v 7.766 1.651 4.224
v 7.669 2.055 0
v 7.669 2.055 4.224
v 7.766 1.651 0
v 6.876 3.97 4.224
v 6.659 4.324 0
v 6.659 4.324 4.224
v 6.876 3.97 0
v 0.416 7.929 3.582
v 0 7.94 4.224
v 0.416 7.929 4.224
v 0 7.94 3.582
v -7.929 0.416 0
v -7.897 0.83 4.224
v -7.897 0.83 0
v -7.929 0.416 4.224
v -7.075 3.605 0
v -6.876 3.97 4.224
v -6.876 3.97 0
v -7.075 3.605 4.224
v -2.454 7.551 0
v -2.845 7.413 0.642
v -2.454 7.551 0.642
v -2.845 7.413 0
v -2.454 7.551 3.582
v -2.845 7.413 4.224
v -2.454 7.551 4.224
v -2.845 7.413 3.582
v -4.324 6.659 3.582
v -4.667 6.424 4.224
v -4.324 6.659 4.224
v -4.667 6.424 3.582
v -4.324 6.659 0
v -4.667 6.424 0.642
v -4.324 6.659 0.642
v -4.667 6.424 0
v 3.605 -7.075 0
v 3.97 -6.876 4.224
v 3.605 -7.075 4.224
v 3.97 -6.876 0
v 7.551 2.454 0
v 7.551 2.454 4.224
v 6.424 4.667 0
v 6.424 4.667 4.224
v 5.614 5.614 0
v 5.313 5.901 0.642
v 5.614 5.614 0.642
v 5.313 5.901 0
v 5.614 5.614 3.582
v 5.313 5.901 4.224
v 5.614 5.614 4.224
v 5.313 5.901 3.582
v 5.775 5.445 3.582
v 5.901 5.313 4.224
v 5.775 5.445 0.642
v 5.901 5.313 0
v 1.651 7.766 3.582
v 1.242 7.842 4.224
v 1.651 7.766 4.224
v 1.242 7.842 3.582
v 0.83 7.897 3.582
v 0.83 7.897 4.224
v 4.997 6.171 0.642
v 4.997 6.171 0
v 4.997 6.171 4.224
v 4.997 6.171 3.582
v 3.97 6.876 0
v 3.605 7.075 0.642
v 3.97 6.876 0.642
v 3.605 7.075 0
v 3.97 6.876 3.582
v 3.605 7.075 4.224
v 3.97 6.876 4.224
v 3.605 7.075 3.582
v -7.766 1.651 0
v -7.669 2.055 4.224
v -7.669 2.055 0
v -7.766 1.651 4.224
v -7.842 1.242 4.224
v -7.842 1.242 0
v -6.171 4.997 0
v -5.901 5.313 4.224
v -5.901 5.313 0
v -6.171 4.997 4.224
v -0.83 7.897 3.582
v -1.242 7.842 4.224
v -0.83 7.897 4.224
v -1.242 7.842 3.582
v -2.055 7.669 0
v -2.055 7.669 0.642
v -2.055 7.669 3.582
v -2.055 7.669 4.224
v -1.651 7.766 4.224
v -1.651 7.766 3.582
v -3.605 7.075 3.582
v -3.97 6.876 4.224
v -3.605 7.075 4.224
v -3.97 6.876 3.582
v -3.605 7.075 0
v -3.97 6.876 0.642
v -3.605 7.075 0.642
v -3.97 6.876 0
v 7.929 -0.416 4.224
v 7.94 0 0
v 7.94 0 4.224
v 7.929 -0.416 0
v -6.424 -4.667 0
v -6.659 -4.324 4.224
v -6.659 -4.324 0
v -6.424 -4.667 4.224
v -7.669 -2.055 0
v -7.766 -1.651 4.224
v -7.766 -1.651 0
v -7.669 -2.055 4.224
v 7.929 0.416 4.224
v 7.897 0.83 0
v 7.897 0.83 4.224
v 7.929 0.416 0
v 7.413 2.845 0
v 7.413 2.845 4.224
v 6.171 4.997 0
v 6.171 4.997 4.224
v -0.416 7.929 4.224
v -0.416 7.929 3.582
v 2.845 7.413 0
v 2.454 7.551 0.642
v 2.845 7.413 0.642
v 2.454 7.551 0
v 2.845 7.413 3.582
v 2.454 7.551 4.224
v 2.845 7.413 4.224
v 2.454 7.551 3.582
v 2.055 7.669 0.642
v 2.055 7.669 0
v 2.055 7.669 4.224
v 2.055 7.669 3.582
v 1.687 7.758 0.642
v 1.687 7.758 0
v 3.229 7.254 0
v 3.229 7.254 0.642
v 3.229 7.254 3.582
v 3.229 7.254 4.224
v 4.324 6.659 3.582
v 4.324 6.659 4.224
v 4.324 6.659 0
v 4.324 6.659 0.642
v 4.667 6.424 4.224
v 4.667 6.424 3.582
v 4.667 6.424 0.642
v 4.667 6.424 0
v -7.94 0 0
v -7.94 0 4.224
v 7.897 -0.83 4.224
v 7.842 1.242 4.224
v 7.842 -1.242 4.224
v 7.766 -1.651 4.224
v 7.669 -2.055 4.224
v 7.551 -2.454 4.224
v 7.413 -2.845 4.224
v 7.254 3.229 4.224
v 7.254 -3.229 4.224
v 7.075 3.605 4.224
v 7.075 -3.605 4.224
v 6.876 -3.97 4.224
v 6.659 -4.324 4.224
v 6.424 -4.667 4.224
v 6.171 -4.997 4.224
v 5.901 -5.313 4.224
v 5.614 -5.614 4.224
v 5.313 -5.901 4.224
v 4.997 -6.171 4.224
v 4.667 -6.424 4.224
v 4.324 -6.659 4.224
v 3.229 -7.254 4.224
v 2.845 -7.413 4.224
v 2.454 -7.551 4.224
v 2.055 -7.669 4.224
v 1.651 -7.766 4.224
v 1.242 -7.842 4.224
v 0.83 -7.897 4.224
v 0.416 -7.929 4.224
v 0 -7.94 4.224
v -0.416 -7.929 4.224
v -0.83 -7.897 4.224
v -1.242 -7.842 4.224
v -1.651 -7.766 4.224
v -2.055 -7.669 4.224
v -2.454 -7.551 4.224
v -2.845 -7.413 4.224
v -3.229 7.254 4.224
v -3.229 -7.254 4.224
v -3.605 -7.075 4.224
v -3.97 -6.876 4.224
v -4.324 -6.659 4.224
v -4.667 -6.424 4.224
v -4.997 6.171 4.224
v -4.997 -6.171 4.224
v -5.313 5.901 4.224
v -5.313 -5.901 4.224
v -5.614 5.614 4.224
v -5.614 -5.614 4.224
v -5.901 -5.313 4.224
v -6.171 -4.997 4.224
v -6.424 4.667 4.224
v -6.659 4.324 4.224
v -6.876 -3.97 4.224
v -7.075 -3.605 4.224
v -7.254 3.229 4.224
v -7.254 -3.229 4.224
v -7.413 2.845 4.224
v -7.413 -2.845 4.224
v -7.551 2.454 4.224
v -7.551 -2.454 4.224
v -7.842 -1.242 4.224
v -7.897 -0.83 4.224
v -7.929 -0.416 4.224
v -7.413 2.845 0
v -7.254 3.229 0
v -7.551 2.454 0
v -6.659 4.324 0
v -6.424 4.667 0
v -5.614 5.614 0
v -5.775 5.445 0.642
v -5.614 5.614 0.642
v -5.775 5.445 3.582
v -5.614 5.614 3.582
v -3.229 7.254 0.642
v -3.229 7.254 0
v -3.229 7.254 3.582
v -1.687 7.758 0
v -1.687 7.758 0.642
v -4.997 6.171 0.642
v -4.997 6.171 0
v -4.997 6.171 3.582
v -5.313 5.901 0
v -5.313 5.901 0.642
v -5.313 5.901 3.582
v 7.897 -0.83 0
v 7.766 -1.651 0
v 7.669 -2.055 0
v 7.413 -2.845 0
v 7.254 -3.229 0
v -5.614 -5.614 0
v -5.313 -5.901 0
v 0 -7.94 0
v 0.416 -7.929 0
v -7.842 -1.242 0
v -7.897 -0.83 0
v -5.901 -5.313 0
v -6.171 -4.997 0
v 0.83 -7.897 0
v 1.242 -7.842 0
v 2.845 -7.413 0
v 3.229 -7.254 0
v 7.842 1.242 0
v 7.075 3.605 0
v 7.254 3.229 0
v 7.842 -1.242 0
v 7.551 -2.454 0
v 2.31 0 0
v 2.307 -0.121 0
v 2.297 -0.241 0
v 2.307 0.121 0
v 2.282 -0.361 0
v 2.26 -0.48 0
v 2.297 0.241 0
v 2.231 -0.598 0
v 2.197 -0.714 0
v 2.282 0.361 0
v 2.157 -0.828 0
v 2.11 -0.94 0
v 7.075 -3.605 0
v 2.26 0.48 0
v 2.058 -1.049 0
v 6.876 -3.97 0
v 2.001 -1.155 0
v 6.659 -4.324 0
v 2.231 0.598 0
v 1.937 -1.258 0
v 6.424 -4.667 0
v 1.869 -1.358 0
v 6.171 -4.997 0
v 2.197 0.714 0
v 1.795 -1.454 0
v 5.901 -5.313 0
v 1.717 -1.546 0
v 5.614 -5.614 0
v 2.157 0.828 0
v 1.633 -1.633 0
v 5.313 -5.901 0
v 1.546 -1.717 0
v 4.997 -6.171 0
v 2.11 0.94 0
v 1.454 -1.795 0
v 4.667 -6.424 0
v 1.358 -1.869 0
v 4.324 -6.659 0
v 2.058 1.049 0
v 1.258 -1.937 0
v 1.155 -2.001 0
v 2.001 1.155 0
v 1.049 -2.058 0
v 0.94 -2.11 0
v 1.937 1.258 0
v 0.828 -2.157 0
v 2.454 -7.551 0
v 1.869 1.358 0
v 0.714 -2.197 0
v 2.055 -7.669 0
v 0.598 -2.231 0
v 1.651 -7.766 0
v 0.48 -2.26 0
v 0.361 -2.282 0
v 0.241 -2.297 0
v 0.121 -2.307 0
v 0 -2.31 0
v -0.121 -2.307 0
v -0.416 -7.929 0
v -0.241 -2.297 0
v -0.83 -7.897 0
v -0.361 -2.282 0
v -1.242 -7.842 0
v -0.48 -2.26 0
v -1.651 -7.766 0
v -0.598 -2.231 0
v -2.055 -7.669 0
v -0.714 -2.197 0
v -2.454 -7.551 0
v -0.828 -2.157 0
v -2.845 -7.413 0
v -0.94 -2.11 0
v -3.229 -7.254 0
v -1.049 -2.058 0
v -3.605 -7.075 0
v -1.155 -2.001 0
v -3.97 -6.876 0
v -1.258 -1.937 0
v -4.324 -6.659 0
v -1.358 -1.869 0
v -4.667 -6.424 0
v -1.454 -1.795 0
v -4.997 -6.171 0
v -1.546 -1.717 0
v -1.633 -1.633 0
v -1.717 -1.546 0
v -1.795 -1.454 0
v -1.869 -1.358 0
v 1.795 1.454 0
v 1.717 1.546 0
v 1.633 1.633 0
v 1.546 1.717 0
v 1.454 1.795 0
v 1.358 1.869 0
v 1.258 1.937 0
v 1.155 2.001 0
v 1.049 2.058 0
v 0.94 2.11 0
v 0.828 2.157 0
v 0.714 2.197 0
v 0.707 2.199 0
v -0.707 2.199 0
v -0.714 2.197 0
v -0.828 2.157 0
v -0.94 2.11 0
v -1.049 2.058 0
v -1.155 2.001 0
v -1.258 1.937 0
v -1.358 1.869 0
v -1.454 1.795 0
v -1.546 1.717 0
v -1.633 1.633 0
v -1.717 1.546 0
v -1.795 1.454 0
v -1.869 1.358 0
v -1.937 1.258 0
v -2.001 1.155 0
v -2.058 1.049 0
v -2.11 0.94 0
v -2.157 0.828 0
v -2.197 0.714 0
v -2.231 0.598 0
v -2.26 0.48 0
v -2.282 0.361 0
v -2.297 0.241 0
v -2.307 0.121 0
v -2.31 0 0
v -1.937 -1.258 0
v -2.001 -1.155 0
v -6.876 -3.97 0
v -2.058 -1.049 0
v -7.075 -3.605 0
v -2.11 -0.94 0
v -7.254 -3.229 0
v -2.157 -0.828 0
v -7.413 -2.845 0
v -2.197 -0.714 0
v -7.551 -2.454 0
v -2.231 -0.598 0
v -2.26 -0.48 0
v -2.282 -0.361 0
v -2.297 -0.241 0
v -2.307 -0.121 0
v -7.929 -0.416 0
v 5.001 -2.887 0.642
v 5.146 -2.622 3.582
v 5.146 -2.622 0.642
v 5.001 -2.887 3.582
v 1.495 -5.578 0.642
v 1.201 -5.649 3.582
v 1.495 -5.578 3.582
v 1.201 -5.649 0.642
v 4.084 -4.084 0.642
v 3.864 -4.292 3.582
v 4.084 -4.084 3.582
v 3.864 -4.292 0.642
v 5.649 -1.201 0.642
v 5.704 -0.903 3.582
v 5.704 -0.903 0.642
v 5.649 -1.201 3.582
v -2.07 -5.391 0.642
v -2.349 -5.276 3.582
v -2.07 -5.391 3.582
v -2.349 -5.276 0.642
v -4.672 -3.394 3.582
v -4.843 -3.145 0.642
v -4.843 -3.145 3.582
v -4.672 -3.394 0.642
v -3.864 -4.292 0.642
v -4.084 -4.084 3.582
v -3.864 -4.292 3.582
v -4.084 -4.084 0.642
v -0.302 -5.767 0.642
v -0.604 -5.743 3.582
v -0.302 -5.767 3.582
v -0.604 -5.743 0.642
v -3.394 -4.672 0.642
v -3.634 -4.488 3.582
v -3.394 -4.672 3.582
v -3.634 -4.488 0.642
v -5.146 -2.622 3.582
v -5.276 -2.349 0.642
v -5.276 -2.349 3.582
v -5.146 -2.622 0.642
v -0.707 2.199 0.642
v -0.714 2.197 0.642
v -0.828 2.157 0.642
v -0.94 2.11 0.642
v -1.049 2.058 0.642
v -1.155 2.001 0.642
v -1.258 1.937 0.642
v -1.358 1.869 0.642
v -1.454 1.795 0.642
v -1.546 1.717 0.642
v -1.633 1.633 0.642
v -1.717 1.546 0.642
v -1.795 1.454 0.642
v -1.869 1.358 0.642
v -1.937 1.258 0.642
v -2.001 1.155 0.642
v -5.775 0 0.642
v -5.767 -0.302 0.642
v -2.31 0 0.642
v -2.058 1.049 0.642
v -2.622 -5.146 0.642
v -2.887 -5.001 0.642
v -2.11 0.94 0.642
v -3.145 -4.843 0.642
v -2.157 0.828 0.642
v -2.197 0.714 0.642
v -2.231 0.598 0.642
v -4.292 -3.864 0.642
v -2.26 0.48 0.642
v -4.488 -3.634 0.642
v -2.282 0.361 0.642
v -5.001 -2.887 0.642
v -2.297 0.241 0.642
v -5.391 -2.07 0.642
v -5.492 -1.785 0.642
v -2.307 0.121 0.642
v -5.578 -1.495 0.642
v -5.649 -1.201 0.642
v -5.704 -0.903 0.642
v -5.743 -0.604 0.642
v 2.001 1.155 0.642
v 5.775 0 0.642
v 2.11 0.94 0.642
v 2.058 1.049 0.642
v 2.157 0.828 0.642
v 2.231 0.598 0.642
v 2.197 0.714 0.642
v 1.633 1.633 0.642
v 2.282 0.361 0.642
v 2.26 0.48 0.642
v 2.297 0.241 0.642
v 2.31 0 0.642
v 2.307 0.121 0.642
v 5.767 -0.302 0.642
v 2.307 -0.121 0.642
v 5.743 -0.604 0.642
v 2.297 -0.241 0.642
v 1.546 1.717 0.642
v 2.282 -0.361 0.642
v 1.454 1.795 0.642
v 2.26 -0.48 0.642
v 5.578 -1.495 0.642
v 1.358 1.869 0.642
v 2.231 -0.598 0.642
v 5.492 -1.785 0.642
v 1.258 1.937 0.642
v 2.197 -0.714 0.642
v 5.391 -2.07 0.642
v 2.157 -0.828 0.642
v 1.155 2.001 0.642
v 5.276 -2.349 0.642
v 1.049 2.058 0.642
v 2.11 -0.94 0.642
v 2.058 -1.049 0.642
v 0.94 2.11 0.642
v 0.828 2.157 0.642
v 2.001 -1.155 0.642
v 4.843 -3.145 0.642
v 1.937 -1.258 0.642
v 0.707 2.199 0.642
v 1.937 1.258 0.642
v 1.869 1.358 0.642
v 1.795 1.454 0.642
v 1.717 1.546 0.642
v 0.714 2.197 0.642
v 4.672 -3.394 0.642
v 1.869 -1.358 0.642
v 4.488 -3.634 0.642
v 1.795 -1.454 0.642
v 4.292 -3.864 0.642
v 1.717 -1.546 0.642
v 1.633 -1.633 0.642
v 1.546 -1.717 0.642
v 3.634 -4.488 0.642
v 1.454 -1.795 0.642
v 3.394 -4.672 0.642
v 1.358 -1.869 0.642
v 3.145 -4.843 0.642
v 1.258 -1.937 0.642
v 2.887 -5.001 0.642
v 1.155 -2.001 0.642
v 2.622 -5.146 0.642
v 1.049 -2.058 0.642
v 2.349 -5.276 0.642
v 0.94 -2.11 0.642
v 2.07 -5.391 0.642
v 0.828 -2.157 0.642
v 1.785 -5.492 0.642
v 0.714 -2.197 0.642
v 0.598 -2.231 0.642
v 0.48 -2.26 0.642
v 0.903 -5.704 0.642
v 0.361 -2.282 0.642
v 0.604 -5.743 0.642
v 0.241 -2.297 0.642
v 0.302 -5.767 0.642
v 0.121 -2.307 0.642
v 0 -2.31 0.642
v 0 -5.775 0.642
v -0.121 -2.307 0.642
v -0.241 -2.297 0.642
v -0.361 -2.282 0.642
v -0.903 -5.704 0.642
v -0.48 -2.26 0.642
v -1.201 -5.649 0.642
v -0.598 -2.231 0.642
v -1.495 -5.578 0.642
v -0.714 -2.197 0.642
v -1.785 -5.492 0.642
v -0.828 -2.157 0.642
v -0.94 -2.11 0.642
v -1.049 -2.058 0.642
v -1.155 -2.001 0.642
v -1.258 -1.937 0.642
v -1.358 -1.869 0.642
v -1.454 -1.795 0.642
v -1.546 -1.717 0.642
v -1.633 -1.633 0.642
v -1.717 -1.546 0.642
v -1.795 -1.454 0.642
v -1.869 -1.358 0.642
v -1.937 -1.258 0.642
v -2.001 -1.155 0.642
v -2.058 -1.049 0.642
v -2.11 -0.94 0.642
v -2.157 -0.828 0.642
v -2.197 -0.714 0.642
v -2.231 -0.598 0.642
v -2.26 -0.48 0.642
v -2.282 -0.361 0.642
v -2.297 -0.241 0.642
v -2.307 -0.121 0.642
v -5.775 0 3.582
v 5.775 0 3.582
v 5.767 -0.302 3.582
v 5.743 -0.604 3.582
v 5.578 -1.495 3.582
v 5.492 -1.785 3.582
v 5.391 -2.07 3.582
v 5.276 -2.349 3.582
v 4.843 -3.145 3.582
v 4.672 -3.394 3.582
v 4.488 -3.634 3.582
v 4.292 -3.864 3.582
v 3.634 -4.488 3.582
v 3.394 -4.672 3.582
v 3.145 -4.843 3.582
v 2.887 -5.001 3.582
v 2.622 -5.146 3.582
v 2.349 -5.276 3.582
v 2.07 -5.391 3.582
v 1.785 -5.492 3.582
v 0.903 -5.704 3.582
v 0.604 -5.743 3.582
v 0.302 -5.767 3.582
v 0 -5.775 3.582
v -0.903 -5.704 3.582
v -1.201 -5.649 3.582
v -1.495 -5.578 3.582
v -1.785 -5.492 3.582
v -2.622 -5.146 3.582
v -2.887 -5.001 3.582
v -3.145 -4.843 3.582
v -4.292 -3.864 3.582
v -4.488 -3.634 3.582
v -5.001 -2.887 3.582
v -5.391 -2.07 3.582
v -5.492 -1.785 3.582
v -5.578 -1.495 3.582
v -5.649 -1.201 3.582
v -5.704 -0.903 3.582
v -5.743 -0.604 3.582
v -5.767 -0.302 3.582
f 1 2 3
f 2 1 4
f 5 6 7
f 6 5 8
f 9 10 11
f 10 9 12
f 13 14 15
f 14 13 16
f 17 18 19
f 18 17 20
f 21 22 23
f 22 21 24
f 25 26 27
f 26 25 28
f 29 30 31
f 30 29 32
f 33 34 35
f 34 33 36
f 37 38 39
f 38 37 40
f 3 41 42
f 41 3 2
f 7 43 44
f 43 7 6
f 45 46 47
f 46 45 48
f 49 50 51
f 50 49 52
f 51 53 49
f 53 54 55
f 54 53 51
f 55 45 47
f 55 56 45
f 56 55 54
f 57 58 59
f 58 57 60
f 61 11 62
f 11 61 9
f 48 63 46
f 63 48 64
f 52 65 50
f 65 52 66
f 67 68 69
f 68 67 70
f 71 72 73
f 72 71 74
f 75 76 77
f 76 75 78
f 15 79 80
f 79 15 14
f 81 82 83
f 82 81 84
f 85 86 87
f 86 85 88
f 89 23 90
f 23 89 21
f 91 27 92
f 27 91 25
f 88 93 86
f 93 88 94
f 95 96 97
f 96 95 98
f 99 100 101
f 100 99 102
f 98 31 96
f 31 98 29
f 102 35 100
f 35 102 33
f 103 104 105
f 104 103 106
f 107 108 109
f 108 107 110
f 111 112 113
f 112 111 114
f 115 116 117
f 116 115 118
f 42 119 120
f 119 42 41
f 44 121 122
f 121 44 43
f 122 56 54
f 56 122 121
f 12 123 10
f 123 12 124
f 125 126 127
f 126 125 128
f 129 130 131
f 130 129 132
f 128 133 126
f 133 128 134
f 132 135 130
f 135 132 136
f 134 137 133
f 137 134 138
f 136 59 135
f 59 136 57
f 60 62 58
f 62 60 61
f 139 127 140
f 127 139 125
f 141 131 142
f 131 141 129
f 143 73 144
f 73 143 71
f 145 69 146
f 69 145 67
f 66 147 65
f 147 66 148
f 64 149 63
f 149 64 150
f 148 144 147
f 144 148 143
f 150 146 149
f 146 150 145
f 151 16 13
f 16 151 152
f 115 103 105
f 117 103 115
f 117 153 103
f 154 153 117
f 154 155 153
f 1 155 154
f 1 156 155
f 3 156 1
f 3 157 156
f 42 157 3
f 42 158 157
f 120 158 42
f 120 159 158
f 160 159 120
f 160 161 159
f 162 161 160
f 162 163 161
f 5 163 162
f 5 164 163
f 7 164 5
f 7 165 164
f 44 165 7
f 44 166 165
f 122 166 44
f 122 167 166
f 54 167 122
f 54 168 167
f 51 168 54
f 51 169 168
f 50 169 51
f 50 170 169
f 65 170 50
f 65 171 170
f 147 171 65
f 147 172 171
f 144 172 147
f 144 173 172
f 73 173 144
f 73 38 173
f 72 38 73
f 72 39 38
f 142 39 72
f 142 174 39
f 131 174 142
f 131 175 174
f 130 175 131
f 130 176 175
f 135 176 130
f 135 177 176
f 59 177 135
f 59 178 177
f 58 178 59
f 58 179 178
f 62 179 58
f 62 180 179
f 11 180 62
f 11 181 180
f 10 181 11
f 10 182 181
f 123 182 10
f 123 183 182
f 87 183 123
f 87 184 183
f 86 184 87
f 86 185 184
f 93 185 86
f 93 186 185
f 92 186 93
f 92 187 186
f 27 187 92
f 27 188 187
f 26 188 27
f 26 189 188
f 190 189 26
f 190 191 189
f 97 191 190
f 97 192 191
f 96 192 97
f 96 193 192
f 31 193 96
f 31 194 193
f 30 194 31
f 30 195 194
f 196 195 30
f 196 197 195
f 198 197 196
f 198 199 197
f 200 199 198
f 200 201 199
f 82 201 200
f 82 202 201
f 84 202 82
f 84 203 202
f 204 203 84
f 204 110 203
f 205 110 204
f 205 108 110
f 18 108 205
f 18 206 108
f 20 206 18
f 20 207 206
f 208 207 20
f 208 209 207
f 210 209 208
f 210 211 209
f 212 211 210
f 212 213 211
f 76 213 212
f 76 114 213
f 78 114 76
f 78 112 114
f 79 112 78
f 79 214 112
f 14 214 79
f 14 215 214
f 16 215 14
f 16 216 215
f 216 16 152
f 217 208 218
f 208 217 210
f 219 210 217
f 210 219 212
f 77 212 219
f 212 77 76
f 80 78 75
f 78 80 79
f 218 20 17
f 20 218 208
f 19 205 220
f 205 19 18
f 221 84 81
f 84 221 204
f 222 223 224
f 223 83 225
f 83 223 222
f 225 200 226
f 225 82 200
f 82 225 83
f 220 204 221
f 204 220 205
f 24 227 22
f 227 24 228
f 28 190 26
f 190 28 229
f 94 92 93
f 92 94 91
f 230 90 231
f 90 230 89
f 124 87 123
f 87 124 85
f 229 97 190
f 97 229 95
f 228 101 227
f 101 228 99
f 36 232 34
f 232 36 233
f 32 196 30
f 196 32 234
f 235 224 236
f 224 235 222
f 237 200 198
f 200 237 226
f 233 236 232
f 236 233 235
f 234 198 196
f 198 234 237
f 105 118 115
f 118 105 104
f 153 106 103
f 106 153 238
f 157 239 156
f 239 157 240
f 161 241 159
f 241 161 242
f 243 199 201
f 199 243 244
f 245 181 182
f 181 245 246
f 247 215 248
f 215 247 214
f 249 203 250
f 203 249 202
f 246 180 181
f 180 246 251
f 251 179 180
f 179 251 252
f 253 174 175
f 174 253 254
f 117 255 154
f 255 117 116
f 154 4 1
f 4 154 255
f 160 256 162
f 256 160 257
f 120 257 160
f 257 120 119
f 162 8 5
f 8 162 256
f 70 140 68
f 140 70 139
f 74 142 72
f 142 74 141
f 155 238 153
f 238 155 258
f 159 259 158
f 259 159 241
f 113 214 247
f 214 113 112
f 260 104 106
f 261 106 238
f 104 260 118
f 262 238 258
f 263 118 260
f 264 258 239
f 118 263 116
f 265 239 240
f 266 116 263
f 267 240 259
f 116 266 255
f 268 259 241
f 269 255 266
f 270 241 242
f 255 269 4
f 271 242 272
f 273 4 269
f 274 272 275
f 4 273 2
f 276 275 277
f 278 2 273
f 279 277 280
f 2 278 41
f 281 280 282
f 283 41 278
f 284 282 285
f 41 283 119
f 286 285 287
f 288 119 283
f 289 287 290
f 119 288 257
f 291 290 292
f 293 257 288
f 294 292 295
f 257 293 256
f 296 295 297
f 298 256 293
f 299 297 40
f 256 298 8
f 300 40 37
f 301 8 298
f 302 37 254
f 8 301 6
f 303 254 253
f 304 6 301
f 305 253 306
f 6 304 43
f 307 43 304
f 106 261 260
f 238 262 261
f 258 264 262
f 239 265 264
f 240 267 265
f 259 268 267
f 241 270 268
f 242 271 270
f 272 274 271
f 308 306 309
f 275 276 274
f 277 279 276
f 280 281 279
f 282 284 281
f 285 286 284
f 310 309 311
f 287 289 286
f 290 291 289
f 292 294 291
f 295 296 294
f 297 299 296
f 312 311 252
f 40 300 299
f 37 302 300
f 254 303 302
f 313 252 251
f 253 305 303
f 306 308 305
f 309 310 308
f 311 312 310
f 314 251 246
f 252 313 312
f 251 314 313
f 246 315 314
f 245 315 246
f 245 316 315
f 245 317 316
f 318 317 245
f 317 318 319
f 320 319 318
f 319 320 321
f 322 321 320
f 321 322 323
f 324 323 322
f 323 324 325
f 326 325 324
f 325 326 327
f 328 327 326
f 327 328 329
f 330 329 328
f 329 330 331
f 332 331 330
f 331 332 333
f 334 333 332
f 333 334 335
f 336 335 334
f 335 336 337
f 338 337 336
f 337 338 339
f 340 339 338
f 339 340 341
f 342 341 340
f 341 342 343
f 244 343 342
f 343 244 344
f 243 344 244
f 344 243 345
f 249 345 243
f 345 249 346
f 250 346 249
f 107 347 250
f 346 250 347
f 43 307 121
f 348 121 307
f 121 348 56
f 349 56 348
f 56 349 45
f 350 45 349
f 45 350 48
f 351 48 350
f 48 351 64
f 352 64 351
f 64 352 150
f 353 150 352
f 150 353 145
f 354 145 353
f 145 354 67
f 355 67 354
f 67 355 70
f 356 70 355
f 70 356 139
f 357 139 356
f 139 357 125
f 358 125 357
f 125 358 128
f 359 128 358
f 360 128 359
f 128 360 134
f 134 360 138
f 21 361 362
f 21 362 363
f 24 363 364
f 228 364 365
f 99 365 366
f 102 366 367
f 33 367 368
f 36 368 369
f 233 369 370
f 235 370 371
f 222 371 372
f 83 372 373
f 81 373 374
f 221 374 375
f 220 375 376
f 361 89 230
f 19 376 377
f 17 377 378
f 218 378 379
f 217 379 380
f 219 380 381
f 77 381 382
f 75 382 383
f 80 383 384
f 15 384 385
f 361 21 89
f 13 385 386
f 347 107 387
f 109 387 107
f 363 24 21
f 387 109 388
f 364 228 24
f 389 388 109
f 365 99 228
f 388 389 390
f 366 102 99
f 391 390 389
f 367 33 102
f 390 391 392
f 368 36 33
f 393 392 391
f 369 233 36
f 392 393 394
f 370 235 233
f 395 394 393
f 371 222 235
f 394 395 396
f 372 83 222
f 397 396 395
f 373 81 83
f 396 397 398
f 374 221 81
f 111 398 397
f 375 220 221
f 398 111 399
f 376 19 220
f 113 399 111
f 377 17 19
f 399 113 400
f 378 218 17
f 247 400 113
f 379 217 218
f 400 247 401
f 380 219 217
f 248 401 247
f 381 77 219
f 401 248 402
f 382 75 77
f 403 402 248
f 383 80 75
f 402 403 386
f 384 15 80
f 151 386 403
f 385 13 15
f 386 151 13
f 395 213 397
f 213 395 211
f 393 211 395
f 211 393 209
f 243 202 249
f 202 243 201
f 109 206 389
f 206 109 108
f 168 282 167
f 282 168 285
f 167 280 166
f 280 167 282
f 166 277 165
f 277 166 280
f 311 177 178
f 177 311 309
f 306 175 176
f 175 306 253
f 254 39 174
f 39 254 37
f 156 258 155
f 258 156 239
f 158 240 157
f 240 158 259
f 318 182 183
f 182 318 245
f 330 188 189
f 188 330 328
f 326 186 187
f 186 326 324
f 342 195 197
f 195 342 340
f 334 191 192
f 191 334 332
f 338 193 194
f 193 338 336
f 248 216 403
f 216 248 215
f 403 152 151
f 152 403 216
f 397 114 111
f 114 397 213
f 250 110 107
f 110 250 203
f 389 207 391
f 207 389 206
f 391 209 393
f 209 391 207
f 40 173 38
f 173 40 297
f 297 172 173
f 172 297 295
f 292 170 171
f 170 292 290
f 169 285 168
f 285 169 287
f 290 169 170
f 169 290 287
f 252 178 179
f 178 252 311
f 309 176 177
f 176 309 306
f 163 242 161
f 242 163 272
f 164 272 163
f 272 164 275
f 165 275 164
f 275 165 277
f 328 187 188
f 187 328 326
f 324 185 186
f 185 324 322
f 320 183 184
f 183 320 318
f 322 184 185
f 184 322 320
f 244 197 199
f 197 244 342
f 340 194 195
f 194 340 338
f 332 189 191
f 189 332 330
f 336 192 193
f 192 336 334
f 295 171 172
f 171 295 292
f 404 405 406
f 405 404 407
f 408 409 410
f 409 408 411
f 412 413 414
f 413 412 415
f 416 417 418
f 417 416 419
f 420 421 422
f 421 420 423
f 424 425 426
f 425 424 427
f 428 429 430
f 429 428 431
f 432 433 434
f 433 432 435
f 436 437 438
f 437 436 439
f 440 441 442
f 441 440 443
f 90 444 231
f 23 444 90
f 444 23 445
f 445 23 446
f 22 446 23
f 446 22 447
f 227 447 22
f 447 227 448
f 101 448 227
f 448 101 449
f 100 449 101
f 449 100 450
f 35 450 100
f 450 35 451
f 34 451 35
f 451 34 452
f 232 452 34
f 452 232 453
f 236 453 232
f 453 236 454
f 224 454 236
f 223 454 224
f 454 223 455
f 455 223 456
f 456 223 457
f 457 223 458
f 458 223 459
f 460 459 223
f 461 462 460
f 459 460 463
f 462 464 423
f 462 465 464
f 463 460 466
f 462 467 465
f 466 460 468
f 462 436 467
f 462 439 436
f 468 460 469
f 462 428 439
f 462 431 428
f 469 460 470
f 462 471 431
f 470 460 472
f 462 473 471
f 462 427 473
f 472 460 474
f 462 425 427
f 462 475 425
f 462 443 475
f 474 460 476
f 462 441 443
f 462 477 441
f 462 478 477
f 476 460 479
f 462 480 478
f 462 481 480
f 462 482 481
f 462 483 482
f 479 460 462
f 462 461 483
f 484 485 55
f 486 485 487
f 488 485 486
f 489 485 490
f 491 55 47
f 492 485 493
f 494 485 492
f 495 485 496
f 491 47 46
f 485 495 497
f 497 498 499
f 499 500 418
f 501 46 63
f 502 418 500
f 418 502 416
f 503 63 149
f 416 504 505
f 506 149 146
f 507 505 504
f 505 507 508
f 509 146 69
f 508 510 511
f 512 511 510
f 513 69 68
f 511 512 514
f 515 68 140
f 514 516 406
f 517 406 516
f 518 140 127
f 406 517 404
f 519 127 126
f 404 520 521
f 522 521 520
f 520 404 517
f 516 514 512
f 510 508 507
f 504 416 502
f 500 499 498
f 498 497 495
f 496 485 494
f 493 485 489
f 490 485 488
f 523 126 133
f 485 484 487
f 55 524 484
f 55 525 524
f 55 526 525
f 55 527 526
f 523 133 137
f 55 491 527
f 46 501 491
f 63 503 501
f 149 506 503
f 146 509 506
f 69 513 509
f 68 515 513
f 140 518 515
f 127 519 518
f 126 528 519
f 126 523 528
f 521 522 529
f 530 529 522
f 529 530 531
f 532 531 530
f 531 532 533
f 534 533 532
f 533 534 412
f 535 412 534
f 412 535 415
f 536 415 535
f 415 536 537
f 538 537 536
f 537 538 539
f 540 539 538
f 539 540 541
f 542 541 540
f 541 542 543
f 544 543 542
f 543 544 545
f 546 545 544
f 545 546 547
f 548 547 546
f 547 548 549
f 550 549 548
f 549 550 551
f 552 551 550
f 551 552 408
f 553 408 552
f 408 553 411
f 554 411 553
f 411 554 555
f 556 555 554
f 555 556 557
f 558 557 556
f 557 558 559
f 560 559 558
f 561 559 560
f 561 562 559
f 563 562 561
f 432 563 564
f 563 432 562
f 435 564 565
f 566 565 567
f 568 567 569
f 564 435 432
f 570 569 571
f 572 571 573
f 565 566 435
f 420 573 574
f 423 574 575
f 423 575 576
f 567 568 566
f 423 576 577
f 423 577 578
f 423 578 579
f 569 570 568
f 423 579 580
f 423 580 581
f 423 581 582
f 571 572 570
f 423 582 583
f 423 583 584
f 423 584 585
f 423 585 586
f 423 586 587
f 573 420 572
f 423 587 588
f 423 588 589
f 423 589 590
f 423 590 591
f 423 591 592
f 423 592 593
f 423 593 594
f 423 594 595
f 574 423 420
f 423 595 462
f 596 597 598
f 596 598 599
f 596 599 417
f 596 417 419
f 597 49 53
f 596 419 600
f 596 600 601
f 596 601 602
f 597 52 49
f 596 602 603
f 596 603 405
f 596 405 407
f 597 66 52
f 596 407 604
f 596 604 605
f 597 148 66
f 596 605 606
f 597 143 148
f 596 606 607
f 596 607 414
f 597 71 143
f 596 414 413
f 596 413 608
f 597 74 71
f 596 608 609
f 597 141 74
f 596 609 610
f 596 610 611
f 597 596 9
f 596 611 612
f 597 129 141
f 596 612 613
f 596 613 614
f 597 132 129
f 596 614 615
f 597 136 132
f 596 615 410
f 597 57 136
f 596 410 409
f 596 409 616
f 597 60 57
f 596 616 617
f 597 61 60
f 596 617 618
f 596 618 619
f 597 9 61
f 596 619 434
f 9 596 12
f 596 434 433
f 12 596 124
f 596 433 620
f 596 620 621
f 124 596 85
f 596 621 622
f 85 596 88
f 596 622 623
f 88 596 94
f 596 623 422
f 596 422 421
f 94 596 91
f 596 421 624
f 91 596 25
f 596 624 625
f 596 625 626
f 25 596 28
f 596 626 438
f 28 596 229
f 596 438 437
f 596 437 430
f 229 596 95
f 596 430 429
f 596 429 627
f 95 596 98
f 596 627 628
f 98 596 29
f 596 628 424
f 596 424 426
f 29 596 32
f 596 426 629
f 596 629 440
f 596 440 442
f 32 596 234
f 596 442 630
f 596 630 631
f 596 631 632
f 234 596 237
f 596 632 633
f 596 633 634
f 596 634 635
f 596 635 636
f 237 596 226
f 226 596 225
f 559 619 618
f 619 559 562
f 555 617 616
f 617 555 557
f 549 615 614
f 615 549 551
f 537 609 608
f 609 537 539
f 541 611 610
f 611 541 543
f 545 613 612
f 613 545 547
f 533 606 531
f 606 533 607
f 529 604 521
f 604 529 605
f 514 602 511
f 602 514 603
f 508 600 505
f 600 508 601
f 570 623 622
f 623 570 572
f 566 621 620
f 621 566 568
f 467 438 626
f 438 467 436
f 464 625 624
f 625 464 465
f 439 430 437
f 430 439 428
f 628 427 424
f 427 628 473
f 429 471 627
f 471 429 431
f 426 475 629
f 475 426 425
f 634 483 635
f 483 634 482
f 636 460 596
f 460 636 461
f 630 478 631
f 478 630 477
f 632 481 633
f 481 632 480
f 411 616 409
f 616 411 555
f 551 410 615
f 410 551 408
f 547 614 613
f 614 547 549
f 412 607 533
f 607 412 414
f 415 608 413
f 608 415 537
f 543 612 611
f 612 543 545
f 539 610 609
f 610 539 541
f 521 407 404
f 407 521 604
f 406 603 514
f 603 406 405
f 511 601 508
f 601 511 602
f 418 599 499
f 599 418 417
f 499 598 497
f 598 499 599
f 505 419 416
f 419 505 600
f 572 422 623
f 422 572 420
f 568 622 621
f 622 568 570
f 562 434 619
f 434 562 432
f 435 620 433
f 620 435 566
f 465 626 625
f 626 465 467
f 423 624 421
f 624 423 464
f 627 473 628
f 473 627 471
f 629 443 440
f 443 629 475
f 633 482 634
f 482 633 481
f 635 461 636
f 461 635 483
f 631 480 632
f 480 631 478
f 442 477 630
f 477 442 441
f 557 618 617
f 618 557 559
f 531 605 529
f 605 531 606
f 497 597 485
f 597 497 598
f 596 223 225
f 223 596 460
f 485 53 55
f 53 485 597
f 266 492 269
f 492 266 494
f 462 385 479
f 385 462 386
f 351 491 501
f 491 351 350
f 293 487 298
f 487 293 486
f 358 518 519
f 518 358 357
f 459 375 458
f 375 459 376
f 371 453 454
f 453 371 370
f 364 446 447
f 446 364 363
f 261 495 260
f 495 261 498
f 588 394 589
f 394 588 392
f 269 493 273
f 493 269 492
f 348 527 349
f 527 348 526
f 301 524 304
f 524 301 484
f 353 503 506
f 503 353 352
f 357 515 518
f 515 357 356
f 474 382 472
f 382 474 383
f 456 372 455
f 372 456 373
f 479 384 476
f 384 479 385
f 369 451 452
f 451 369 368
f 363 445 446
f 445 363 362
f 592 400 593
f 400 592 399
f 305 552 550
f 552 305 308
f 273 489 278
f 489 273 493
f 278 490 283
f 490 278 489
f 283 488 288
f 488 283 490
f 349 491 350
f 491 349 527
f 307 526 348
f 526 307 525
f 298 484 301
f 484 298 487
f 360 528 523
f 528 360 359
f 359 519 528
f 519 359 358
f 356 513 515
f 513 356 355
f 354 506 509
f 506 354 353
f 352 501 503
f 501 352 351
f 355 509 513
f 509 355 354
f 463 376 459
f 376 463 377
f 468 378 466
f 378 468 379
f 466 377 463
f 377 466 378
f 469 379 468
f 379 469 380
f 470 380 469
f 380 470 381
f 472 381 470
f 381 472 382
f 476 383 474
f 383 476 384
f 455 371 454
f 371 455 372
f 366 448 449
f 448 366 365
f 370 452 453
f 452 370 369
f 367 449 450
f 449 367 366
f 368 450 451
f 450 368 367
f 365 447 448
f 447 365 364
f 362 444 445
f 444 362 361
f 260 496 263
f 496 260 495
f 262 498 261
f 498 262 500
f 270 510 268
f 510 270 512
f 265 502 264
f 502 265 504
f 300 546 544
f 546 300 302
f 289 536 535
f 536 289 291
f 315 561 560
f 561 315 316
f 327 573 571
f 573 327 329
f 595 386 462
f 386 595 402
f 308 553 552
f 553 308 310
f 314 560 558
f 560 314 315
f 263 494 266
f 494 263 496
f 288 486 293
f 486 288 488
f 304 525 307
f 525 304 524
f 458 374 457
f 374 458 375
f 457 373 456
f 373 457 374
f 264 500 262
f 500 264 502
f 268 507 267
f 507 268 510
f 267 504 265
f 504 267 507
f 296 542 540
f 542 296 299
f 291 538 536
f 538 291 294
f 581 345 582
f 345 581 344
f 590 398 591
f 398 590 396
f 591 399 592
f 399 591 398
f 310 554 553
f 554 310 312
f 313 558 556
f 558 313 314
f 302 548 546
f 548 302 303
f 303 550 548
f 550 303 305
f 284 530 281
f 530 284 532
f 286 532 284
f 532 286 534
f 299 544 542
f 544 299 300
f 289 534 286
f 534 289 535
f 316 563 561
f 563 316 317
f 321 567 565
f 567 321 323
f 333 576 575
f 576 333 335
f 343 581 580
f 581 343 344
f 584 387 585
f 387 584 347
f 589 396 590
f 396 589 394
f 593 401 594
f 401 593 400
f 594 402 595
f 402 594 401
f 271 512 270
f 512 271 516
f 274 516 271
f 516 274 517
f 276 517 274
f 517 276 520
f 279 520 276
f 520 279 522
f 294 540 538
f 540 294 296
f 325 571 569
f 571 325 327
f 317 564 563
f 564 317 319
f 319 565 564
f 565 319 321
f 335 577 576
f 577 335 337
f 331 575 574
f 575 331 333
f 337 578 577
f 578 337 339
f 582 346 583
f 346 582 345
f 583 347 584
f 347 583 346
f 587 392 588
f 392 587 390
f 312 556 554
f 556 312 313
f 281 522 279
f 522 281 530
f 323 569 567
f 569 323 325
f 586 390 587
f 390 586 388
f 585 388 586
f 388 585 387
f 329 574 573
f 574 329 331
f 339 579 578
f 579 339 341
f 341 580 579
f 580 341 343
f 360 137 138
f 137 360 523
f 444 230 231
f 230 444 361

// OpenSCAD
// ButtonVelcroAdapter_Inside_v1C.scad
// Copyright 2022 by Ronald L. Nelson II
// ron.nelson.ii@gmail.com
// sybarite.us

// All measurements are in MM

//The Belfry OpenSCAD Library
//https://github.com/revarbat/BOSL
include <BOSL/constants.scad>
use <BOSL/shapes.scad>
use <BOSL/transforms.scad>

buttonHeight = 2.64;
buttonDiameter = 11.25;
buttonWiggleRoom = 0.30;
velcroDiameter = 15.88;

adapterHeight = (buttonHeight * 1.60);
$fn=120; //default circle smoothness


difference(){

  union(){
  //base object
  color("blue") cylinder(h=adapterHeight, d=velcroDiameter);
  }

  //subtractions ---------------------------------------

  //subtract out space for button in middle
  color("red") 
   translate([0,0,(adapterHeight/2)-((buttonHeight+buttonWiggleRoom)/2)])
    cylinder(h=(buttonHeight+buttonWiggleRoom), d=(buttonDiameter+buttonWiggleRoom));

  //subtract out slot for button to slide into
  color("pink")
   translate([-((buttonDiameter+buttonWiggleRoom)/2), 0, (adapterHeight/2)-((buttonHeight+buttonWiggleRoom)/2)])
    cube([(buttonDiameter+buttonWiggleRoom), (velcroDiameter), (buttonHeight+buttonWiggleRoom)]);
  
  //subtract out keyhole slot for button thread attachment
  color("hotpink") cylinder(h=buttonHeight, d=(buttonDiameter+buttonWiggleRoom)*0.40);
  color("hotpink") translate([0,63,0]) rotate([90,0, 0]) teardrop(r=buttonDiameter, h=2, ang=10);

}//difference
